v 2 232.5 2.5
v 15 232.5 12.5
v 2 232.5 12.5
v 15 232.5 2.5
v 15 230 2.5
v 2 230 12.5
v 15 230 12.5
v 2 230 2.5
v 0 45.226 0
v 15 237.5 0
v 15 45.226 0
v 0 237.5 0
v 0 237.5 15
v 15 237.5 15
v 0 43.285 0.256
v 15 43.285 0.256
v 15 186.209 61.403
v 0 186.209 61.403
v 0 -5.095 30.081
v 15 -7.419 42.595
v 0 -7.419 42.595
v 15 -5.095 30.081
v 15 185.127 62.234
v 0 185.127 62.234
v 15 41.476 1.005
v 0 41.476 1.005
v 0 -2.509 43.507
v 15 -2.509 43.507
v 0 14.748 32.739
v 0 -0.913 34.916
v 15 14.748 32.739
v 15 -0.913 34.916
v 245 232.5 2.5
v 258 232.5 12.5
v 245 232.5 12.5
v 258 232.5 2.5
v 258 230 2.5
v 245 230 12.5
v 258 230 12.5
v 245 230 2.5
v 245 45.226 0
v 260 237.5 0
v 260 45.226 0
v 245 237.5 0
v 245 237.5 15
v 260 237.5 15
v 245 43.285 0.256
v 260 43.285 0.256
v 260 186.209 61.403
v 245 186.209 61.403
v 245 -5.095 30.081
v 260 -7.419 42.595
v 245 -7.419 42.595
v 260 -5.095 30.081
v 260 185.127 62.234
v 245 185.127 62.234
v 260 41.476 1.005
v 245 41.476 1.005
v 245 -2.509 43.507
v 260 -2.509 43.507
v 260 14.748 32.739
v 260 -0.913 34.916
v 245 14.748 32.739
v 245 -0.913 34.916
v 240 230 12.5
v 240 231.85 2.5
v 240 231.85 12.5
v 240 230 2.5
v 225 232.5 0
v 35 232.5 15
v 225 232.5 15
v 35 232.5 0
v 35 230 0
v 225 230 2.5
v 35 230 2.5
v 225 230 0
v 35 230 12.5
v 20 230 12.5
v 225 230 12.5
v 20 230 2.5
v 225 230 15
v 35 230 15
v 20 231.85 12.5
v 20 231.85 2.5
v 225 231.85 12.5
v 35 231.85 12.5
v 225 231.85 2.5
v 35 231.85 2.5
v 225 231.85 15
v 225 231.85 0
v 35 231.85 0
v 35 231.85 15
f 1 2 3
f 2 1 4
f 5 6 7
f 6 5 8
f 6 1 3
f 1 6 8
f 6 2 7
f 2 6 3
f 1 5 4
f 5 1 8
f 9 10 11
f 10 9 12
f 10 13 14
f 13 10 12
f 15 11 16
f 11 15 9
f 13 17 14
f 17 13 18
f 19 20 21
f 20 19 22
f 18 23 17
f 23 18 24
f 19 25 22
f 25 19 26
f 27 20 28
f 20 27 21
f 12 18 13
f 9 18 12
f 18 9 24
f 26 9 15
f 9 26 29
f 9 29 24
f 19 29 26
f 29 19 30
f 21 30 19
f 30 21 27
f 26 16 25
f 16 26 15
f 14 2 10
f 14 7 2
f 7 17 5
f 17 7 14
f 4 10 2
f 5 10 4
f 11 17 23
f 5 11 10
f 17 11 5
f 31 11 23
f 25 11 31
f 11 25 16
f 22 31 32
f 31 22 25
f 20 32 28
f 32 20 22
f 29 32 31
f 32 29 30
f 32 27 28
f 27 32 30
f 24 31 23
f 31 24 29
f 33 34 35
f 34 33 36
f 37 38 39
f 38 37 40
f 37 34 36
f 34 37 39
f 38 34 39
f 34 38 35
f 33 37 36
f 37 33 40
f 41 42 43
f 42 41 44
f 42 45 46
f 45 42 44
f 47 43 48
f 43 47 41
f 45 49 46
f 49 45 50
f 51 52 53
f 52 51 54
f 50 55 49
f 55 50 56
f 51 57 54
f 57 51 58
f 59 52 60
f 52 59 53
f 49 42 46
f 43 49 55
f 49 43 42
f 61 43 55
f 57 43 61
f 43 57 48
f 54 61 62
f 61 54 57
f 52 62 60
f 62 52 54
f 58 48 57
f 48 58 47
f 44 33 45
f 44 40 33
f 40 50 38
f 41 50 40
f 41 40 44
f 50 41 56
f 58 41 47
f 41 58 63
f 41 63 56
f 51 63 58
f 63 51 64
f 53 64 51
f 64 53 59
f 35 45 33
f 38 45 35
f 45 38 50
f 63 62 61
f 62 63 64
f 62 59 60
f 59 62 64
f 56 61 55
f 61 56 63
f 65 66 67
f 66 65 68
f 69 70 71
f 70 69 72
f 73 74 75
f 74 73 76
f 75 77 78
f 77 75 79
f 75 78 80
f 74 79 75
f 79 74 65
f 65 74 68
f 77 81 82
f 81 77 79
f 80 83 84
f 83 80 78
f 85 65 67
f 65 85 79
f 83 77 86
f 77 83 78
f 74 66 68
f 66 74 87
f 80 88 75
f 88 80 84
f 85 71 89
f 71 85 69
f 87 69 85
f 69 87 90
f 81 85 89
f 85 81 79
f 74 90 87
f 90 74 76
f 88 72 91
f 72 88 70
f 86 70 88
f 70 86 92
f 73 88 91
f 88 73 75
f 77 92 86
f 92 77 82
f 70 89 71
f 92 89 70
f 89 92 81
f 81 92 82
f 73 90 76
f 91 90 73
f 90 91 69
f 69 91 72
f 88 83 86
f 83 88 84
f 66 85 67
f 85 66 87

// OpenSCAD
// points of interest.
base_max_elevation = 72;
base_min_elevation = 30;

spacing = 220;
spacing_trim = 0.15;

laptop_depth = 230;
laptop_thickness_at_rear = 15.5;
laptop_thickness_at_front = 14.5;

support_ratio = 4/5;
separate_by = 20;

// calculate the rise from min_elevation to max_elevation over a tangent distance of laptop_depth
base_rise = base_max_elevation - base_min_elevation;
echo("base_rise: ", base_rise);

base_length = sqrt(pow(laptop_depth, 2) - pow(base_rise, 2));
rise_angle = asin(base_rise / laptop_depth);

echo("base_length: ", base_length);
echo("rise_angle: ", rise_angle);
echo("upper_angle: ", 90 - rise_angle);

// supported ratio
support_base = base_length * support_ratio;
support_hyp = support_base / sin(90 - rise_angle);
support_leg = support_hyp * sin(rise_angle);

echo("support base:", support_base);
echo("support hyp: ", support_hyp);
echo("support leg: ", support_leg);

module side() {
    difference() {
        hull() {
            // Rear Upper Support Point
            translate([0, support_base, support_leg + base_min_elevation - 15 / 2]) rotate([0, 90, 0]) cylinder(d = 15, h = 15);
            // Front Upper Support Point
            translate([0, 0, base_min_elevation + 15 / 2]) rotate([0, 90, 0]) rotate([0, 0, 45 + rise_angle])
                cylinder(d = laptop_thickness_at_front + 3.5, h = 15, $fn = 4);
            // Rear Base Point
            translate([0, laptop_depth, 15 / 2]) rotate([0, 90, 0]) {
                translate([-15 / 2, -15 / 2, 0]) cube(15);
            }
            // Front Base Point
            translate([0, base_length * (1 - support_ratio), 15 / 2]) rotate([0, 90, 0])
                cylinder(d = 15, h = 15);
        }
        hull() {
            // Front Upper Support Point
            translate([0, 0, base_min_elevation]) rotate([0, 90, 0]) rotate([0, 0, rise_angle])
                translate([-5 - laptop_thickness_at_front, 15, 0]) cube([laptop_thickness_at_front + 5, 15, 15]);
            translate([0, 0, base_min_elevation]) rotate([0, 90, 0]) rotate([0, 0, rise_angle])
                translate([-5 - laptop_thickness_at_front, 0, 0]) cube([laptop_thickness_at_front, 2, 15]);
            // Rear Upper Support Point
            translate([0, support_base, support_leg + base_min_elevation - 15 / 2]) rotate([0, 90, 0])
                translate([-15-7.5, -15 / 2 + 15 / 2, 0]) cube([laptop_thickness_at_front, 15, 15]);
        }
        
        
        translate([2, 0, 0])
            spreader_bar();
    }
}

side();
translate([spacing + separate_by * 2, 0, 0]) mirror([1, 0, 0]) side();

translate([separate_by, 0, 0]) 
    spreader_bar(trim = true);


module spreader_bar(trim = false) {
    translate([0, laptop_depth, 0])
    mirror([0, 1, 0]) 
    rotate([90, 0, 0])
    difference() {
        union() {
            translate([0, 2.5, 0])
                cube([spacing, 10, 2.5]);
            translate([15, 0, 0])
                cube([spacing - 30, 15, 2.5]);
        }
        if (trim == true) {
            translate([0, 0, 2 - spacing_trim]) {
                cube([15, 15, 2]);
                translate([spacing - 15, 0, 0])
                    cube([15, 15, 2]);
            }
        }
    }
}
